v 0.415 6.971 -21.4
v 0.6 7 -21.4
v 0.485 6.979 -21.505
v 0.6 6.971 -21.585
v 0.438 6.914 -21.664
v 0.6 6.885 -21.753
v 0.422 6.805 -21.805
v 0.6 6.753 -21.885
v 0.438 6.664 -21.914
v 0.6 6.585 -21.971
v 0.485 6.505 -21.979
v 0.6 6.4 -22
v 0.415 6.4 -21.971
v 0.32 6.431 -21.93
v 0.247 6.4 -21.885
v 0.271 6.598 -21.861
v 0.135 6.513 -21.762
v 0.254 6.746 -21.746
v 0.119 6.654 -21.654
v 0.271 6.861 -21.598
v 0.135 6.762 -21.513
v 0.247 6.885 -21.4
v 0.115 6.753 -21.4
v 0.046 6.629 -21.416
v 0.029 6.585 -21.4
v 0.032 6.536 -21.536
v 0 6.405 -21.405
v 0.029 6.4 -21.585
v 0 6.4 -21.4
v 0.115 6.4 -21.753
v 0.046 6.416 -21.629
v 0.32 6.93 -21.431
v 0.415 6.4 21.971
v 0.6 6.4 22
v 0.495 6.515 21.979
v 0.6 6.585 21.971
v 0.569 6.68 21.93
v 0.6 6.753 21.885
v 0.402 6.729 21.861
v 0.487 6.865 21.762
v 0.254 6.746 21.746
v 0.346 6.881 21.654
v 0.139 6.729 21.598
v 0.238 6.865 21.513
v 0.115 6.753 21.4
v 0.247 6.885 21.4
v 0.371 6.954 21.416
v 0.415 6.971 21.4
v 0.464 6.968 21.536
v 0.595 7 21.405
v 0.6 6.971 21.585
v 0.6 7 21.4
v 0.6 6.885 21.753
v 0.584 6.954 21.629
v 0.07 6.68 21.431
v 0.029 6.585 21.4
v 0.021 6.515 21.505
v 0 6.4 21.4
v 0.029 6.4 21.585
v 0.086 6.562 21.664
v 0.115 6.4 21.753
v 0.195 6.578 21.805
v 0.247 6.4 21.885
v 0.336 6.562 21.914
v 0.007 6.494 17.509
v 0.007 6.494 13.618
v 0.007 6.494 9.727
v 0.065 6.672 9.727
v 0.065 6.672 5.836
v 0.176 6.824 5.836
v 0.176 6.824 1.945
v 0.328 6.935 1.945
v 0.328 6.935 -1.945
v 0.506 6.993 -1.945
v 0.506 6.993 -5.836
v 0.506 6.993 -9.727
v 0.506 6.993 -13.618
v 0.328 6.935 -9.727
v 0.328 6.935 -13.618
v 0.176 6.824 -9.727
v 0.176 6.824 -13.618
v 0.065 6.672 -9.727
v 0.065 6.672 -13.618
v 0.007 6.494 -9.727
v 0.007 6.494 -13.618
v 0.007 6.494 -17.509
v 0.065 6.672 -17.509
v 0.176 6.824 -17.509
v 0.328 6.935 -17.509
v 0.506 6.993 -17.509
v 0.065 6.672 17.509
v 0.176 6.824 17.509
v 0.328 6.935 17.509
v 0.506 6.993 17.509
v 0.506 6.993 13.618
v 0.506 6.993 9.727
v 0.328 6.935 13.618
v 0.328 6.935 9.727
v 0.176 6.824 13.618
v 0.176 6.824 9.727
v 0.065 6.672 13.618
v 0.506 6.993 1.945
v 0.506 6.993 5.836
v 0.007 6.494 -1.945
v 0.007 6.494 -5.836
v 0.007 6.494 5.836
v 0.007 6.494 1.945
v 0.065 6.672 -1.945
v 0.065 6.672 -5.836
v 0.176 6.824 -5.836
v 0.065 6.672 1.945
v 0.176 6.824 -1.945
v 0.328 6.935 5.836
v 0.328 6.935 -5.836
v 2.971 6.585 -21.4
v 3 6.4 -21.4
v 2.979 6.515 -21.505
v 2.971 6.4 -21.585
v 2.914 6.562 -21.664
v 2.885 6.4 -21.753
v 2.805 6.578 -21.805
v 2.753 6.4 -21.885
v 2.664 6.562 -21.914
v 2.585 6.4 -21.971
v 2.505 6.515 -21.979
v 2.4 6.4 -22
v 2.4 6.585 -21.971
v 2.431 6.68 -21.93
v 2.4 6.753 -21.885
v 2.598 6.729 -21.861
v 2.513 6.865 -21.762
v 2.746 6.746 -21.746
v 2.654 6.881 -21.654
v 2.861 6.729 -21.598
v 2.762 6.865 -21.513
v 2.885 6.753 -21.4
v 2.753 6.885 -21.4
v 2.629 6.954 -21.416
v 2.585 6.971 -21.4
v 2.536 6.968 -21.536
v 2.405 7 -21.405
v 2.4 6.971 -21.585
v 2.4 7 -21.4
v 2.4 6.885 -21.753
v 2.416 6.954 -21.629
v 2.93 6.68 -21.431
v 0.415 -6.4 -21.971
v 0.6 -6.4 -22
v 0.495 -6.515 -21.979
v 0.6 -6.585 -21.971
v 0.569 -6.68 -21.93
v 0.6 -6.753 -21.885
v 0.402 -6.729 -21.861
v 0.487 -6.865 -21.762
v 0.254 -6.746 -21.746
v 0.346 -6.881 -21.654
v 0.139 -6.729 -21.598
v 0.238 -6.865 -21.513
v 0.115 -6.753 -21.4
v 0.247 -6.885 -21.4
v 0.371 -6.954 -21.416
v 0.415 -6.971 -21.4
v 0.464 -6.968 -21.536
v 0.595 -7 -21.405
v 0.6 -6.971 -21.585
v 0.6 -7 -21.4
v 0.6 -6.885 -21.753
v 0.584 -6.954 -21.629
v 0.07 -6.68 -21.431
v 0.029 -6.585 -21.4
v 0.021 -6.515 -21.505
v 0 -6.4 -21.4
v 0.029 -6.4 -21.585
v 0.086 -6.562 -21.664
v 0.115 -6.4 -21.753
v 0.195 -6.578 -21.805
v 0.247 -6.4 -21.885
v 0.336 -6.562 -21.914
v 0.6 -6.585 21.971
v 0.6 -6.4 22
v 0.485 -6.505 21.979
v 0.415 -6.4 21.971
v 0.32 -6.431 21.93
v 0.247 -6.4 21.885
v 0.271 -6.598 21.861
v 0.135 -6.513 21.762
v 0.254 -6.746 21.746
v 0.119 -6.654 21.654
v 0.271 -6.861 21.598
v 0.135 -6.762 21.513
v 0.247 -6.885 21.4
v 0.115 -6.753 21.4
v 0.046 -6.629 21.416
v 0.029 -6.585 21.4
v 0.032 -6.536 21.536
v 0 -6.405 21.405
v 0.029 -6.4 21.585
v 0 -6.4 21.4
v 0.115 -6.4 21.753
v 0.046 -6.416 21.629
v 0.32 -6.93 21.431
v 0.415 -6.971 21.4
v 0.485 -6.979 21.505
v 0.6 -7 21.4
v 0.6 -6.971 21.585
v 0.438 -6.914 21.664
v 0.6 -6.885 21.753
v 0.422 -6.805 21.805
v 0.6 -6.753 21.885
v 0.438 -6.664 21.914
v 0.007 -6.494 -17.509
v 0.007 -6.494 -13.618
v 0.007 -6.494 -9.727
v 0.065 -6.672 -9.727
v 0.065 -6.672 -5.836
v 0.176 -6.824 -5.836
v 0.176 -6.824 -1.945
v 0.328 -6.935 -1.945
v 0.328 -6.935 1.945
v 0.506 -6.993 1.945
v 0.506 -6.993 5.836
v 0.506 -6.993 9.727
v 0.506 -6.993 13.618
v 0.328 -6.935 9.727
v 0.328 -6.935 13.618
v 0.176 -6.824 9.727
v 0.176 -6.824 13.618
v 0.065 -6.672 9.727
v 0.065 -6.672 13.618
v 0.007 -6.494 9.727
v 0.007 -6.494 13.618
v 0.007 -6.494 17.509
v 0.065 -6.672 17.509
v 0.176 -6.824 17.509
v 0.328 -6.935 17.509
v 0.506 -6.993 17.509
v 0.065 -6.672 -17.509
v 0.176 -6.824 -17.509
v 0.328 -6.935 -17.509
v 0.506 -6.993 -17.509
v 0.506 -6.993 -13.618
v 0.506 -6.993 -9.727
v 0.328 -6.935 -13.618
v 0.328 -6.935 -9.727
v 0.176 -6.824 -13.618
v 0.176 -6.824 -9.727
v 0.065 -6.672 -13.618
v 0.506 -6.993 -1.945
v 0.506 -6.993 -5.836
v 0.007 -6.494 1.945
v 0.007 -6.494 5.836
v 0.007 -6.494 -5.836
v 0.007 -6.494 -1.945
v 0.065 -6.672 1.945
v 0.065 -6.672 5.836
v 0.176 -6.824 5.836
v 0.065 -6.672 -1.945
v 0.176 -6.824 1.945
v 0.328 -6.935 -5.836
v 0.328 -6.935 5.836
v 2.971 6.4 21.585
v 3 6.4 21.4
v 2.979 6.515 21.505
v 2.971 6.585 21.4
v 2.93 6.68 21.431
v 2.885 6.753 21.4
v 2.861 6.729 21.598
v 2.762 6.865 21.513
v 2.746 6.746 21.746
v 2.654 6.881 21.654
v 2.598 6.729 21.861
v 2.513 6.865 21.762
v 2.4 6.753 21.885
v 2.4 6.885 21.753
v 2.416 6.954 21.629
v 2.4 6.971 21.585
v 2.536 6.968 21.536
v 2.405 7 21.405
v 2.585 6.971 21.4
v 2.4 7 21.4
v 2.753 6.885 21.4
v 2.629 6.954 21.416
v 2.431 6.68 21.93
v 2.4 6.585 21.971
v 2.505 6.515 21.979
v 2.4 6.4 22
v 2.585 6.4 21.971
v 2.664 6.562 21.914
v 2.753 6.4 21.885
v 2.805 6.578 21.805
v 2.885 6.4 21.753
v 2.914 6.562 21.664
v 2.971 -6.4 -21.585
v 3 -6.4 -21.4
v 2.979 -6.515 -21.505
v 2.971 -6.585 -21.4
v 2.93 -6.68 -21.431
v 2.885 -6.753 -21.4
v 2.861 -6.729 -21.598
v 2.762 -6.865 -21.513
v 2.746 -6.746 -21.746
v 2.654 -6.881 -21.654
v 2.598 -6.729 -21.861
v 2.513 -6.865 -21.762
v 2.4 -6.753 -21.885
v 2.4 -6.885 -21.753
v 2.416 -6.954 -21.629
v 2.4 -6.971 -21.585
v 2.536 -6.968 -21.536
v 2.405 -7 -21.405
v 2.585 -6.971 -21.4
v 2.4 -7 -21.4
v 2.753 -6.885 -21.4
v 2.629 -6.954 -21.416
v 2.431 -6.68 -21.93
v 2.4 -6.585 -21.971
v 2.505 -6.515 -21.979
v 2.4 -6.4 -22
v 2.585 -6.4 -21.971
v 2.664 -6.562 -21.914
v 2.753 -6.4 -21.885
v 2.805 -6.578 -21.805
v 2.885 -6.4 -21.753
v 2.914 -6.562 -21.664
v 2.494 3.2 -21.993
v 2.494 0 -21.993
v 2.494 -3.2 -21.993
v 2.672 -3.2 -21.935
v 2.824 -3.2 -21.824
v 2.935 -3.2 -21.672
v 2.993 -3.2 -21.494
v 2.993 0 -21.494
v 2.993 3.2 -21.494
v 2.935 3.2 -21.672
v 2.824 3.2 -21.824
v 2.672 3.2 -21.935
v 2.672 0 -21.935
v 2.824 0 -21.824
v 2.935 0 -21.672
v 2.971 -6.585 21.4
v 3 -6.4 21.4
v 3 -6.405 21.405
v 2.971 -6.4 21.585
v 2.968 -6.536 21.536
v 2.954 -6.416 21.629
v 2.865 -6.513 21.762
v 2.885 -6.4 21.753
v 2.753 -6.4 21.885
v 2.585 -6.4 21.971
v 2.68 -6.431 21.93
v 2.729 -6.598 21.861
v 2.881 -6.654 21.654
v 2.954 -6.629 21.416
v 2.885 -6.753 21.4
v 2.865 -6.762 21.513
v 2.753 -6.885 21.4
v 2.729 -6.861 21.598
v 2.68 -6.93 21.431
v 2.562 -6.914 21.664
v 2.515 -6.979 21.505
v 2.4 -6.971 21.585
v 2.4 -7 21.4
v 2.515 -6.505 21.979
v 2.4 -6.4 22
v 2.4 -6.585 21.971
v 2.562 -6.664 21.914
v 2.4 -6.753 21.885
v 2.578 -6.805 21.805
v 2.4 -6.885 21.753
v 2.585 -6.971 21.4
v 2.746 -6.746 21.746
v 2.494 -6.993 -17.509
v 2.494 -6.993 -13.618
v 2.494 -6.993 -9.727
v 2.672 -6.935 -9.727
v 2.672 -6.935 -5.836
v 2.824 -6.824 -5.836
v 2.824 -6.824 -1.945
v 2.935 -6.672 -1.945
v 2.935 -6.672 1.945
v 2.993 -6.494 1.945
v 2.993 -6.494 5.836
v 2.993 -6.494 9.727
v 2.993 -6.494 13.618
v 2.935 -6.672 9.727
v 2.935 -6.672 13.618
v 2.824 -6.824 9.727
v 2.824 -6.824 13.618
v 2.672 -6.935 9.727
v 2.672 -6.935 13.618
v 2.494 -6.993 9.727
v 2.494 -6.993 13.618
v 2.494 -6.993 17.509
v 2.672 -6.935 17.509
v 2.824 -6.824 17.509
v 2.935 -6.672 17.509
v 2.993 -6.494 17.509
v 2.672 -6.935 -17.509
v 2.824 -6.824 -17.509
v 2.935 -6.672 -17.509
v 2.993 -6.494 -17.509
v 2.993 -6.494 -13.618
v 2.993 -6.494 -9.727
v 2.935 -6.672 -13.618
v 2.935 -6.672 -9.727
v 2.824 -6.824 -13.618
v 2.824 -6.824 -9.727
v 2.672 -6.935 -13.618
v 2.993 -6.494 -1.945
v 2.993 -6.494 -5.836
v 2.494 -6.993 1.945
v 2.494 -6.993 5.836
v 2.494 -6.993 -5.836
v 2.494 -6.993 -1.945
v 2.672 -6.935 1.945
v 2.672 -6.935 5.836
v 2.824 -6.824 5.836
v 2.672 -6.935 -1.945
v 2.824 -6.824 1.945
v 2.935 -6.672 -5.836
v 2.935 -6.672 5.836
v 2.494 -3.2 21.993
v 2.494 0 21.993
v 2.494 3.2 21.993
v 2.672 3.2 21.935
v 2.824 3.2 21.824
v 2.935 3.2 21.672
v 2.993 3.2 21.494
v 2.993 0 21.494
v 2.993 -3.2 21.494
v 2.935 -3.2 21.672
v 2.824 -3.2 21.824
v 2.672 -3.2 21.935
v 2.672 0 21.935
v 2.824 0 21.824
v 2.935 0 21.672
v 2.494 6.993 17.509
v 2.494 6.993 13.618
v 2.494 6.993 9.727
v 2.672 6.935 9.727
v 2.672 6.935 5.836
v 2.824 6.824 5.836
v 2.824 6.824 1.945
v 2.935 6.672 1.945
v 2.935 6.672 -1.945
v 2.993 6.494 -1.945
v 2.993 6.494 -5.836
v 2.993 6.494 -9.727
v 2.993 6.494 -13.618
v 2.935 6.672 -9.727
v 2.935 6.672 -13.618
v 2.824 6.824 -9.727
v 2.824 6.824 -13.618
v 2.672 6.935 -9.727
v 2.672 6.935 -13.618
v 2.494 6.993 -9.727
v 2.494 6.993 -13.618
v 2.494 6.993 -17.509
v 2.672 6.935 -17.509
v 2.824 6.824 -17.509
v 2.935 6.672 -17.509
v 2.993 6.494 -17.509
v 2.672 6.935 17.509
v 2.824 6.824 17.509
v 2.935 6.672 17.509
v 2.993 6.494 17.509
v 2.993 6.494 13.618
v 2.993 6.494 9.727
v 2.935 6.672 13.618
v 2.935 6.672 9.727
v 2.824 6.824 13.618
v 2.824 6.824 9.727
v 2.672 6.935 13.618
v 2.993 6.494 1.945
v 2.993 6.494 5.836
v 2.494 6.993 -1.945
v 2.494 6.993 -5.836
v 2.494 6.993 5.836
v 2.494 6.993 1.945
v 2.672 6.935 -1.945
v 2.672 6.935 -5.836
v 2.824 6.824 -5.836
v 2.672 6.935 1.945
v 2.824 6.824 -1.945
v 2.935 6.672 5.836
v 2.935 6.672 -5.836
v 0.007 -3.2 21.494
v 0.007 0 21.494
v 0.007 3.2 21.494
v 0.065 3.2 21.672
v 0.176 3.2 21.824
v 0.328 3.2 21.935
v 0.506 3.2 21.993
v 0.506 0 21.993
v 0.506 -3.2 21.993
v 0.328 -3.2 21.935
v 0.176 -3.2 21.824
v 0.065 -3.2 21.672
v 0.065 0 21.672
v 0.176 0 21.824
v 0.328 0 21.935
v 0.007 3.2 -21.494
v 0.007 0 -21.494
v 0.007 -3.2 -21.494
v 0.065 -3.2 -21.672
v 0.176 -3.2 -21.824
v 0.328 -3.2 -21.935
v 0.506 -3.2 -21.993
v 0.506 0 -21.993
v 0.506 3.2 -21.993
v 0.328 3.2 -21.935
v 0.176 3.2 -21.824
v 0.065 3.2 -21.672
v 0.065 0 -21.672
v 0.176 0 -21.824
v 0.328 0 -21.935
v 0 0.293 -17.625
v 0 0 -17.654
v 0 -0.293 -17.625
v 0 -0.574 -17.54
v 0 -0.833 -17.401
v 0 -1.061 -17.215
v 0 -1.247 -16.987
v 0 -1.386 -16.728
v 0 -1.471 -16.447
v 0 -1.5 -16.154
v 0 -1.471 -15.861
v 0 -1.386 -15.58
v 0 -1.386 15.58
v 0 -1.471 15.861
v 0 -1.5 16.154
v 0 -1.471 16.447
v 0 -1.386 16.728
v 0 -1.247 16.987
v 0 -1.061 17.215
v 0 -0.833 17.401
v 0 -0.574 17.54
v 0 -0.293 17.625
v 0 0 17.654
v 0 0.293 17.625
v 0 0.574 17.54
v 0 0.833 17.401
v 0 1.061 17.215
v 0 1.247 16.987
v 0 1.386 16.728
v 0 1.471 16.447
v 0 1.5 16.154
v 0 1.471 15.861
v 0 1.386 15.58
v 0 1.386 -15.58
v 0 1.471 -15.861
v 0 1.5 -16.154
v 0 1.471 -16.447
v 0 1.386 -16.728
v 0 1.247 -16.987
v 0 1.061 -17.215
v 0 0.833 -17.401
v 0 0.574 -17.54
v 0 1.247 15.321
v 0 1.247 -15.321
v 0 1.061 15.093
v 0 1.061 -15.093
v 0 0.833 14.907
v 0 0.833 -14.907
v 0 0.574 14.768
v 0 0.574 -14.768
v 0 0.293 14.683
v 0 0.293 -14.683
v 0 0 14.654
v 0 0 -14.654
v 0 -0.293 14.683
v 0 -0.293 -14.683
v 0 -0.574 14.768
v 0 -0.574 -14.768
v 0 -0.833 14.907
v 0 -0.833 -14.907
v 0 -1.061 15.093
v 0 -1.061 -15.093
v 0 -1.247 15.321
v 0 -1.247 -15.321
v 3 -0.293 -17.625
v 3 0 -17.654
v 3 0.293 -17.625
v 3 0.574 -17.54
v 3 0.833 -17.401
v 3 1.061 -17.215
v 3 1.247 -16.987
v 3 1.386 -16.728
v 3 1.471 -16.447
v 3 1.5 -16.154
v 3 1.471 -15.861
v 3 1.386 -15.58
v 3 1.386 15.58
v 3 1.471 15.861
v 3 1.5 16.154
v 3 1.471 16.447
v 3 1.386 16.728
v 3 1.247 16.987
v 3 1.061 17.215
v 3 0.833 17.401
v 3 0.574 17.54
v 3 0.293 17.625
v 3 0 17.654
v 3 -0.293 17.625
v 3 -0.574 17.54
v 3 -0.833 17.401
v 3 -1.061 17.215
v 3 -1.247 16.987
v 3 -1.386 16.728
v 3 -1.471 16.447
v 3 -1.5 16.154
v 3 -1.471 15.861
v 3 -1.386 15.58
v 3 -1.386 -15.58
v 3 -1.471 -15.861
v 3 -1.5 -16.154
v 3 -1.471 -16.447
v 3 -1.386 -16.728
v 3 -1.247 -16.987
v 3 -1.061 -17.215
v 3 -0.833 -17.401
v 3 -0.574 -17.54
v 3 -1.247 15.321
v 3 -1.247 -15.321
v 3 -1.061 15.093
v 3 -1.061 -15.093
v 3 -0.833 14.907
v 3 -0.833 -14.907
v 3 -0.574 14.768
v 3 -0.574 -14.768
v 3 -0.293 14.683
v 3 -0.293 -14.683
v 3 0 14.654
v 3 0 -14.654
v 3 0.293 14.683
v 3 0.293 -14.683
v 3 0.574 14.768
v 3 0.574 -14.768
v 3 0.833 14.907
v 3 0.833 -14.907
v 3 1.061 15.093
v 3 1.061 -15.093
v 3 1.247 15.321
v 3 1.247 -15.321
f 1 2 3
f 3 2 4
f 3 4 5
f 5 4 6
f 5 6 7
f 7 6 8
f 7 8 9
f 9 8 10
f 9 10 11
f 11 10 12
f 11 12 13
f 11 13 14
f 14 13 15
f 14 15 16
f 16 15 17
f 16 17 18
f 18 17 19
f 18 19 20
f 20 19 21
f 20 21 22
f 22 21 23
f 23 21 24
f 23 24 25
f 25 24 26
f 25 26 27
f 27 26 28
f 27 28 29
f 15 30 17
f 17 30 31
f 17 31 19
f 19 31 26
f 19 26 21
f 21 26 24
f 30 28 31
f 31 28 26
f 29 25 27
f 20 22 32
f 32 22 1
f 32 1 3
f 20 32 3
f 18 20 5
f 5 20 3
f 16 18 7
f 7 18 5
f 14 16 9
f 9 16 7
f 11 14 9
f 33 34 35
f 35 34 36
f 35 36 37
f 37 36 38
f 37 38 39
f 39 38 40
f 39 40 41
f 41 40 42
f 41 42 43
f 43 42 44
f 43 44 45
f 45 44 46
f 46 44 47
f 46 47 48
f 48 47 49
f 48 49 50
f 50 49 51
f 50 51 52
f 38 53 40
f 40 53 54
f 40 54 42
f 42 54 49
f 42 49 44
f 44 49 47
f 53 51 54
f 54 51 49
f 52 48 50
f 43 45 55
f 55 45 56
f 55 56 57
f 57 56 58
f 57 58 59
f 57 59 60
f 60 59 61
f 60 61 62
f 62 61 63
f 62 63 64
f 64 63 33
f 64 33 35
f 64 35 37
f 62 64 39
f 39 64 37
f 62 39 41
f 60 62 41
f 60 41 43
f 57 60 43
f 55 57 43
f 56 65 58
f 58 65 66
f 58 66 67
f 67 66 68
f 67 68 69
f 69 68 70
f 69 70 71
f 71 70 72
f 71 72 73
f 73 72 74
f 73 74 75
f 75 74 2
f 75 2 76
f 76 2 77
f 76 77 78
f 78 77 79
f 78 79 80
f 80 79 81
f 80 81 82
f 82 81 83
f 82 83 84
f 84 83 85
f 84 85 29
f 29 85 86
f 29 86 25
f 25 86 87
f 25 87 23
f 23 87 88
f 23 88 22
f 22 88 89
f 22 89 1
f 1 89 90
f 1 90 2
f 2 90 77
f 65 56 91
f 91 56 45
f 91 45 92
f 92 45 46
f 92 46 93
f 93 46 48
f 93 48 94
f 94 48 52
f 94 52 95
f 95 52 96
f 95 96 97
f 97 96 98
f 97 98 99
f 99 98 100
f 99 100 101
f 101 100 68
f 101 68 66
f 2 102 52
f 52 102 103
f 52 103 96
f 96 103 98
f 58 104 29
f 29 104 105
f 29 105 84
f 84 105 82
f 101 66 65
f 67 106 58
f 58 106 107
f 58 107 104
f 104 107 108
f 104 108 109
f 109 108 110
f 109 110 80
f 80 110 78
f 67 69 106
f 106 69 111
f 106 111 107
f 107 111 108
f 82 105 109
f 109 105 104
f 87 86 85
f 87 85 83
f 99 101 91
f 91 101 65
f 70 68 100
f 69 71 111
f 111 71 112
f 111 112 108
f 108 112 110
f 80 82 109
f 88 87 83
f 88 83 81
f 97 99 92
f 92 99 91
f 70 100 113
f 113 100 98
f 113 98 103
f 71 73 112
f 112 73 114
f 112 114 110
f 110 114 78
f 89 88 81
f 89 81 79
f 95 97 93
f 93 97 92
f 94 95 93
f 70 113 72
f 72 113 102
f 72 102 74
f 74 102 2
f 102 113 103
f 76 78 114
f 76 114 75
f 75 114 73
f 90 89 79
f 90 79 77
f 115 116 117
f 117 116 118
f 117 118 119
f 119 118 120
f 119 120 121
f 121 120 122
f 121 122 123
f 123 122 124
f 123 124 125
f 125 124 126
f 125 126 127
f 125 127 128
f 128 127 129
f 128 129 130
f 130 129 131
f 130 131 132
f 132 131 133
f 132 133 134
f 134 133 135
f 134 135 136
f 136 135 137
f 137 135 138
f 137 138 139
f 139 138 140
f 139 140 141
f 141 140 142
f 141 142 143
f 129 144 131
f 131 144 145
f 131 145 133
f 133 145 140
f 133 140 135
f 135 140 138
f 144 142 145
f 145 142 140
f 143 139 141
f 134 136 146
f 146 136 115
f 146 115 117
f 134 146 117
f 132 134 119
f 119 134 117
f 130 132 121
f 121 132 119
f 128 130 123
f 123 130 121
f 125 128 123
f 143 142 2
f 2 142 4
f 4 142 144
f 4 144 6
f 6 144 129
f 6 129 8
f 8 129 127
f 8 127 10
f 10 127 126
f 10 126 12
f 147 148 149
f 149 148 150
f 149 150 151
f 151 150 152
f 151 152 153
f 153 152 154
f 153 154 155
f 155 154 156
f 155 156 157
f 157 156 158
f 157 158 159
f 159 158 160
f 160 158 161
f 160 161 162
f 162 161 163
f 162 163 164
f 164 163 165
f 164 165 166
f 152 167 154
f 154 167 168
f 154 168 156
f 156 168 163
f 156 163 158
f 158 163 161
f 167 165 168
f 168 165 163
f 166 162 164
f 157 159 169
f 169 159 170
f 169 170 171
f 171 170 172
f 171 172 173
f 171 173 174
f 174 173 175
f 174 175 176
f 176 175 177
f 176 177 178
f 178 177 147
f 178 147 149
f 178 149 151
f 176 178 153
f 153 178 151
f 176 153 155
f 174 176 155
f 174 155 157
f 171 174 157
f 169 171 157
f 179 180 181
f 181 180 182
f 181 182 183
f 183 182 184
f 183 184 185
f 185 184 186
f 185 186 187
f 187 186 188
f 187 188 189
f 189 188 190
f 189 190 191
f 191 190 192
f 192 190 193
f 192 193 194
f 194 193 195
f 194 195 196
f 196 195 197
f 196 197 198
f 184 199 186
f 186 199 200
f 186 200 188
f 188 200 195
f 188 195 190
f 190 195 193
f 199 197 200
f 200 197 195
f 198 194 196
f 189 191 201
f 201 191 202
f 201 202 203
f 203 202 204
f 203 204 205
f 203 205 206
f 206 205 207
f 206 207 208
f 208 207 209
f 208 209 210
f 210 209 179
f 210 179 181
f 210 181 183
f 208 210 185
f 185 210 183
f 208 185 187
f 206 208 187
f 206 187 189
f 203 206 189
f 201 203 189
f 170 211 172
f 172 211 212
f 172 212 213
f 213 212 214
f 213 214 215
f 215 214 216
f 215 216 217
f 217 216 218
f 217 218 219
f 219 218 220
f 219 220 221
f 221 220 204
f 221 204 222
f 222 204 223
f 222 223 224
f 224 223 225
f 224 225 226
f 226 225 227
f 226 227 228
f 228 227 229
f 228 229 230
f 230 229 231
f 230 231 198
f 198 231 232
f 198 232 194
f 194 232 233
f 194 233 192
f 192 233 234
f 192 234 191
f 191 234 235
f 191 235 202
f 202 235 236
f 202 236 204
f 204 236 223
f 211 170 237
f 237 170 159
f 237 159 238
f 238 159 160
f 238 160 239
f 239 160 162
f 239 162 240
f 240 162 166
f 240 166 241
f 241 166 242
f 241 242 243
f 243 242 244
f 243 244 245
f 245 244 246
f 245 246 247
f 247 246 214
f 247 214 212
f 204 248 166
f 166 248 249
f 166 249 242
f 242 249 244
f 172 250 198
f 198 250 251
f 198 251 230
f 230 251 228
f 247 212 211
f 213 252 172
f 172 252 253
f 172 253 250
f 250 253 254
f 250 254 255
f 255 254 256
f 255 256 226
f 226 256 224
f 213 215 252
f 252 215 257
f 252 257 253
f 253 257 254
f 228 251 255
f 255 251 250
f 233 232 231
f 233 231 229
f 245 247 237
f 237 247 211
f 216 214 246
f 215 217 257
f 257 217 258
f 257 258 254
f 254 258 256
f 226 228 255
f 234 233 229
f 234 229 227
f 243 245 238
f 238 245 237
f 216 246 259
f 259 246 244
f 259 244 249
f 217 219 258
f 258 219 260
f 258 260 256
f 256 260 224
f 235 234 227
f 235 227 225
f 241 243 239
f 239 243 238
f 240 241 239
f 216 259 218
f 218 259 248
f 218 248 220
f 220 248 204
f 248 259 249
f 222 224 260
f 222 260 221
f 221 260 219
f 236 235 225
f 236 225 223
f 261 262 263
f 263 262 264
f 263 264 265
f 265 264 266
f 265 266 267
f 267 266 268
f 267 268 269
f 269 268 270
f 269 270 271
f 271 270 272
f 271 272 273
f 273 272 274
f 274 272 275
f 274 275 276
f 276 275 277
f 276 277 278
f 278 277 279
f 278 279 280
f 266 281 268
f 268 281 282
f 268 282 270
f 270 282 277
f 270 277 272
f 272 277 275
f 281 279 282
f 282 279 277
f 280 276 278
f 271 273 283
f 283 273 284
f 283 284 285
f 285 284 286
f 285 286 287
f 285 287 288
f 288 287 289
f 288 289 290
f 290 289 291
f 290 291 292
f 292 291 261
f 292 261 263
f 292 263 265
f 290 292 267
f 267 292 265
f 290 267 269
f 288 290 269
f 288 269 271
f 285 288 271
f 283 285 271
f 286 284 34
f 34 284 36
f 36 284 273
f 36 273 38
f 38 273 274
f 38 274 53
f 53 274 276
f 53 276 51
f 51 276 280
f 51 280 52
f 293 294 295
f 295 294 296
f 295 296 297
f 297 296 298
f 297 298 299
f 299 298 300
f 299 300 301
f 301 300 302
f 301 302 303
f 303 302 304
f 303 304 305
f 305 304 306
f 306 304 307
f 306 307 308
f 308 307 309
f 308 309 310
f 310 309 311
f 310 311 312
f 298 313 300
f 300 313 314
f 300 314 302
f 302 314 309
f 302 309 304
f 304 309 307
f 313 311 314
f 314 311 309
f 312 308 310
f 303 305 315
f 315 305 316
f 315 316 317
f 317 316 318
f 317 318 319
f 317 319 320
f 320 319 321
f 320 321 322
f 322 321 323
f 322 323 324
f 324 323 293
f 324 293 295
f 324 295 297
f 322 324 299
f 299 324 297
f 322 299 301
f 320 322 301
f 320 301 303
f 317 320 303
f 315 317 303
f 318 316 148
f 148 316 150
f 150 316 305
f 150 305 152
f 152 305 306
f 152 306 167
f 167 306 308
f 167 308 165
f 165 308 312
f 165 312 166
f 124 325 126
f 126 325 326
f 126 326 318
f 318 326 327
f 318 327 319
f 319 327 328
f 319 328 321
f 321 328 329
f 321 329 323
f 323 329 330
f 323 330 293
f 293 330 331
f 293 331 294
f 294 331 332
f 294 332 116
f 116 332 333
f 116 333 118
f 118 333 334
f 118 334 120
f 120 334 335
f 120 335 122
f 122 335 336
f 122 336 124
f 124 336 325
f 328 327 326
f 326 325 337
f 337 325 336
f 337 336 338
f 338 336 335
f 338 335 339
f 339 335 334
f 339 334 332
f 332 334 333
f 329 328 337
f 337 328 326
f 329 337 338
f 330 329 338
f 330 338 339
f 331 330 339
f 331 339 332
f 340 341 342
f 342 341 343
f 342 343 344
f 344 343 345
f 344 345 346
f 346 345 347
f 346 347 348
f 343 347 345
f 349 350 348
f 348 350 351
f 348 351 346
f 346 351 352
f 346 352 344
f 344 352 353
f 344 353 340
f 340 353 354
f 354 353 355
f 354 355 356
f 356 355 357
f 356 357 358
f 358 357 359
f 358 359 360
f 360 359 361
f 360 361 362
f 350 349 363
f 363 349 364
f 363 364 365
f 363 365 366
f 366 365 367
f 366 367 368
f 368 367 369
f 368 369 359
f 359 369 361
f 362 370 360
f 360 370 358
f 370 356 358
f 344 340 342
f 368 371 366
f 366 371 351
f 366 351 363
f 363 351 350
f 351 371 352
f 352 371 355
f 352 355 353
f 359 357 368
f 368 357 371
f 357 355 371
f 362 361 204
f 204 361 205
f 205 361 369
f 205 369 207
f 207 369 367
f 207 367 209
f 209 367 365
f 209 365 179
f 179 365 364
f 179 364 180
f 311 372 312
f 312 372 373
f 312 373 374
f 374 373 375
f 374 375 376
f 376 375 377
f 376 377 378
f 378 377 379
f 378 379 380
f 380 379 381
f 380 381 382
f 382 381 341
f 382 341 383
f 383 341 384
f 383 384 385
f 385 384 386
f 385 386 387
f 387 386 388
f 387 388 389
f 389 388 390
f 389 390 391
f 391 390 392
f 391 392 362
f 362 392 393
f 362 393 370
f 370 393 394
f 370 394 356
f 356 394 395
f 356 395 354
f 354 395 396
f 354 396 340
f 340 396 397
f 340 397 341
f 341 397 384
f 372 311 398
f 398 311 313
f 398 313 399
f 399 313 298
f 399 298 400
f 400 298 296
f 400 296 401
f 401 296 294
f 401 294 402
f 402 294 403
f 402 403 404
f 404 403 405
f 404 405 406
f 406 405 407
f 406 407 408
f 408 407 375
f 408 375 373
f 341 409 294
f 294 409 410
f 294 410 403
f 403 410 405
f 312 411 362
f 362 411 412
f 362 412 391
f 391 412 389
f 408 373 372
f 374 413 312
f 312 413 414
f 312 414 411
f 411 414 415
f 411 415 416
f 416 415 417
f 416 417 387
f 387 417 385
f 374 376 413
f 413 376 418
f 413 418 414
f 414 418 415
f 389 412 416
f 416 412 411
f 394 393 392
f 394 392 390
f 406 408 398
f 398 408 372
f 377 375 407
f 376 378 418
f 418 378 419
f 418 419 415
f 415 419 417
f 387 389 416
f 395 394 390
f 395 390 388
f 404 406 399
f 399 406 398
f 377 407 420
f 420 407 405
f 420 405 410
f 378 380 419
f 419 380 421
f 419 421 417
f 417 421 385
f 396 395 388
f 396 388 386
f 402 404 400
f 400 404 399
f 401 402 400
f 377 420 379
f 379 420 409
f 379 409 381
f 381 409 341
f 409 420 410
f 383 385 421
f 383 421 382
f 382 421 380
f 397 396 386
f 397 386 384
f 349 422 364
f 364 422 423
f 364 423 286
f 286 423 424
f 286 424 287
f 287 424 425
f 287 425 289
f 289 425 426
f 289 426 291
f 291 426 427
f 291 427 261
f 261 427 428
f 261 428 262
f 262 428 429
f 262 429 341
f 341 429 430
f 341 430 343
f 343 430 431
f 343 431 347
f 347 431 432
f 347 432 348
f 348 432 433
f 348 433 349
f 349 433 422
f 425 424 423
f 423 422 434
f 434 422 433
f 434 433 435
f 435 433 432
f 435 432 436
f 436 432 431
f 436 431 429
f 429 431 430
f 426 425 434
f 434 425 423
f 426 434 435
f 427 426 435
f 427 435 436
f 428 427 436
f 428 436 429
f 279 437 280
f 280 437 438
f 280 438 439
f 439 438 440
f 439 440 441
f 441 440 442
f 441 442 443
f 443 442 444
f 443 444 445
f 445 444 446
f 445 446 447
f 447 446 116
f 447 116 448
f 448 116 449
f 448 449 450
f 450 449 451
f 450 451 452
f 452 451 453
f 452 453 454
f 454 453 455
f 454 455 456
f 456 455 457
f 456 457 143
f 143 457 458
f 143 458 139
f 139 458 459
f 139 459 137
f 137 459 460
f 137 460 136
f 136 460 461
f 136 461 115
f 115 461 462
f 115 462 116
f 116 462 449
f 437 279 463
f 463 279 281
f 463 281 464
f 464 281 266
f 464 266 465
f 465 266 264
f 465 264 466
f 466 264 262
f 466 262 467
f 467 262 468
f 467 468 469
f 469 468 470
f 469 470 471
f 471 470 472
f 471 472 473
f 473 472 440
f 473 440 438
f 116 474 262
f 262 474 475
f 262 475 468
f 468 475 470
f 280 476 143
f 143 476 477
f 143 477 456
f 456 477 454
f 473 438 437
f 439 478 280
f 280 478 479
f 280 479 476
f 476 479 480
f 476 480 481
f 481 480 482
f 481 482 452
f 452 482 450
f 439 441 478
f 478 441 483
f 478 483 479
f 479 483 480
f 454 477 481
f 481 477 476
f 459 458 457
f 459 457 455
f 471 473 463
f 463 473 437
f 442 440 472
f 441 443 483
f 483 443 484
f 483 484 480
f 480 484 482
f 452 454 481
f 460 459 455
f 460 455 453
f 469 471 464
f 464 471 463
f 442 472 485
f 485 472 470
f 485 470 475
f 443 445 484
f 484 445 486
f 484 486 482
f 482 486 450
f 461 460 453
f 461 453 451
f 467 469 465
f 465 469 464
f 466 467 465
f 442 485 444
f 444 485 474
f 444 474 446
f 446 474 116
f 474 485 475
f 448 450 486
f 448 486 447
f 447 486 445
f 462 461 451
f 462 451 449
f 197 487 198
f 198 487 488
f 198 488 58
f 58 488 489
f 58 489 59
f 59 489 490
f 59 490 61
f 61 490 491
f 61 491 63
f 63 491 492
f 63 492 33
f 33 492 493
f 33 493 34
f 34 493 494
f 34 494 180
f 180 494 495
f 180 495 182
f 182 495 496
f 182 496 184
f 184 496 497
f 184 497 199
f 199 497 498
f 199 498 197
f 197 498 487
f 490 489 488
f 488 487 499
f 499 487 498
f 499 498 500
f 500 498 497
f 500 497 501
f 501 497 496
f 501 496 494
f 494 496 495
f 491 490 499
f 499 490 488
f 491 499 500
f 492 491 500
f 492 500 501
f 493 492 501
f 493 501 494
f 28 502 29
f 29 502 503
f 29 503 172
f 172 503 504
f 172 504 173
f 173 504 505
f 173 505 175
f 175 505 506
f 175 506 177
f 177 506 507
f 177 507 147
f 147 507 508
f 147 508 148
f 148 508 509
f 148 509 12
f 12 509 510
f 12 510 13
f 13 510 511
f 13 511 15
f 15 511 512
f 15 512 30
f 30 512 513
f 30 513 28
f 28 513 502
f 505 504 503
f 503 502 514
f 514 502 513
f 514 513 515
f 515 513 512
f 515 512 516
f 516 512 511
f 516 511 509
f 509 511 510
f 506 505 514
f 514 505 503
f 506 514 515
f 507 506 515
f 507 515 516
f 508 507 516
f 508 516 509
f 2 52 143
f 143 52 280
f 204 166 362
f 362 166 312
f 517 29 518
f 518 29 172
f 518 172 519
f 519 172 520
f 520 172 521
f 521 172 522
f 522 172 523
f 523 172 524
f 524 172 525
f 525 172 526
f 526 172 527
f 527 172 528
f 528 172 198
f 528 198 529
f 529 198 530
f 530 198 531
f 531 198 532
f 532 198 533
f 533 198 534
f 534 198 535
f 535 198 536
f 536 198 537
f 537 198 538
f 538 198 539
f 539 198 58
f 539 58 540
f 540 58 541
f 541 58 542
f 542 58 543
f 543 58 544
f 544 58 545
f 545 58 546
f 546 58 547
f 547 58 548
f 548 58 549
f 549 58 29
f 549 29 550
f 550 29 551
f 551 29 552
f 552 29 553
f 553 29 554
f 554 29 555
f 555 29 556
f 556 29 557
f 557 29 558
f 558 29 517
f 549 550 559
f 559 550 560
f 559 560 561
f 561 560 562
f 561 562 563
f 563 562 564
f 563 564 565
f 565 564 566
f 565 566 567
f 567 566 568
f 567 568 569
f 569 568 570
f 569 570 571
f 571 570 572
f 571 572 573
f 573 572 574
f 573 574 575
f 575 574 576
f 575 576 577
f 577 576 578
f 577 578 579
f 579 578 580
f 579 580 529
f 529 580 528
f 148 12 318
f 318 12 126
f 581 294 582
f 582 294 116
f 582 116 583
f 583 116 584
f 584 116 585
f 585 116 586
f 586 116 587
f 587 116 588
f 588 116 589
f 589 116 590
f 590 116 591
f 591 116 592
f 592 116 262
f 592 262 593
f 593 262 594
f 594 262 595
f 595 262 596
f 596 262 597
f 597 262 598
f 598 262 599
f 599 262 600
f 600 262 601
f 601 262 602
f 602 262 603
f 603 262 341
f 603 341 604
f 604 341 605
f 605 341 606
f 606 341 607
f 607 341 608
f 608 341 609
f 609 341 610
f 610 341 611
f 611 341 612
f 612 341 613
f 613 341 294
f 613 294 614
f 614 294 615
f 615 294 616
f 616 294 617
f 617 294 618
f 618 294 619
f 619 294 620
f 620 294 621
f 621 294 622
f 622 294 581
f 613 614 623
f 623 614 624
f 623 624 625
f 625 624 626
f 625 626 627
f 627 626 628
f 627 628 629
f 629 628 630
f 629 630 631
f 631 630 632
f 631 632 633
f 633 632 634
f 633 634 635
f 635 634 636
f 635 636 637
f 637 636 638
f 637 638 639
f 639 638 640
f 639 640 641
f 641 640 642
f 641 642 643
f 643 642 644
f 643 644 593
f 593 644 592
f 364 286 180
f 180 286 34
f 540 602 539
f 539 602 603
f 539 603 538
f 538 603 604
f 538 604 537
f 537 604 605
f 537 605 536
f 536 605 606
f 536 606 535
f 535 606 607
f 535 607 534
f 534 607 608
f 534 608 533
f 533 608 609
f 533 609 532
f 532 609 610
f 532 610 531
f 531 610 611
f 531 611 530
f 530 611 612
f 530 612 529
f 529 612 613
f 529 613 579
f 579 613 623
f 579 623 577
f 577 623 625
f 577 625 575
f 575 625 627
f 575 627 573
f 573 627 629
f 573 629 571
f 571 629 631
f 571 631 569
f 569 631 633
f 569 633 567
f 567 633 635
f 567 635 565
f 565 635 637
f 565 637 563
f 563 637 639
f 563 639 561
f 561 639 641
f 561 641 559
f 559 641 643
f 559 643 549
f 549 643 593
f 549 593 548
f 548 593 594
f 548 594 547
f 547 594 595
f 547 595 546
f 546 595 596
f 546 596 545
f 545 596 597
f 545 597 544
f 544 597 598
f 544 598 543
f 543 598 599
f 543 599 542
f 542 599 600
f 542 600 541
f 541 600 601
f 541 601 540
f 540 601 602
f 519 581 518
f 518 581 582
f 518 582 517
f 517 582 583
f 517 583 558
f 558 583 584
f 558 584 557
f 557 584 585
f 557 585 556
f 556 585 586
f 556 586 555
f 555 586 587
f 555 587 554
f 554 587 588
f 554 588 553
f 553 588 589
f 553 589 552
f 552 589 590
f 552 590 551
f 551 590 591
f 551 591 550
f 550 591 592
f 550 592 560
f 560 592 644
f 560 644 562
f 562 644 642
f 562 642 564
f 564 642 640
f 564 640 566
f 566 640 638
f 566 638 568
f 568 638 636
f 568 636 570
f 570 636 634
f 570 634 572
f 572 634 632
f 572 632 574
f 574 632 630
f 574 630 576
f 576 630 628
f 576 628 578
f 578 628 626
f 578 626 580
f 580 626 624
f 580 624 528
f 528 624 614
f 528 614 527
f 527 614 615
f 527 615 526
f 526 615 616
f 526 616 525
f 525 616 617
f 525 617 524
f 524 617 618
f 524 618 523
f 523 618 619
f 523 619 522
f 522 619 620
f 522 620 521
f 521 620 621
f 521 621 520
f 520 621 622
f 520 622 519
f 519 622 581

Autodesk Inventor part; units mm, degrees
ref_plane "YZ Plane" through (0, 0, 0) normal (1, 0, 0) x (0, 1, 0)
ref_plane "XZ Plane" through (0, 0, 0) normal (0, 1, 0) x (-1, 0, 0)
ref_plane "XY Plane" through (0, 0, 0) normal (0, 0, 1) x (1, 0, 0)
sketch "Sketch1" plane through (0, 0, 0) normal (1, 0, 0) x (0, 1, 0)
  line L0 (-7, 22) -> (-7, -22)
  line L1 (-7, -22) -> (7, -22)
  line L2 (7, -22) -> (7, 22)
  line L3 (7, 22) -> (-7, 22)
  line L4 (-7, 22) -> (7, -22) construction
  line L5 (-7, -22) -> (7, 22) construction
  point P0 (0, 0)
  dimension "d0" = 44
  dimension "d1" = 14
extrude "Extrusion1" add sketch "Sketch1" along normal blind 3
sketch "Sketch2" plane through (3, 0, 0) normal (1, 0, 0) x (0, 0, -1)
  line L0 (0, 0) -> (16.154, 0)
  circle A0 centre (16.154, 0) radius 1.5
  dimension "d4" = 16.154
  dimension "d5" = 3
extrude "Extrusion2" cut sketch "Sketch2" against normal blind 3
thread "Thread1" size "M3x0.5" class "6H" standard "ANSI Metric M Profile" full length
mirror "Mirror1" about plane through (0, 0, 0) normal (0, 0, 1) of "Extrusion2"
fillet "Fillet1" radius 0.6 12 edges at (3, -7, 0) (0, -7, 0) (1.5, -7, -22) (3, 0, -22) (0, 0, -22) (1.5, 7, -22) (3, 7, 0) (0, 7, 0) (1.5, 7, 22) (3, 0, 22) (1.5, -7, 22) (0, 0, 22)
properties part number "Clamp Plate"
